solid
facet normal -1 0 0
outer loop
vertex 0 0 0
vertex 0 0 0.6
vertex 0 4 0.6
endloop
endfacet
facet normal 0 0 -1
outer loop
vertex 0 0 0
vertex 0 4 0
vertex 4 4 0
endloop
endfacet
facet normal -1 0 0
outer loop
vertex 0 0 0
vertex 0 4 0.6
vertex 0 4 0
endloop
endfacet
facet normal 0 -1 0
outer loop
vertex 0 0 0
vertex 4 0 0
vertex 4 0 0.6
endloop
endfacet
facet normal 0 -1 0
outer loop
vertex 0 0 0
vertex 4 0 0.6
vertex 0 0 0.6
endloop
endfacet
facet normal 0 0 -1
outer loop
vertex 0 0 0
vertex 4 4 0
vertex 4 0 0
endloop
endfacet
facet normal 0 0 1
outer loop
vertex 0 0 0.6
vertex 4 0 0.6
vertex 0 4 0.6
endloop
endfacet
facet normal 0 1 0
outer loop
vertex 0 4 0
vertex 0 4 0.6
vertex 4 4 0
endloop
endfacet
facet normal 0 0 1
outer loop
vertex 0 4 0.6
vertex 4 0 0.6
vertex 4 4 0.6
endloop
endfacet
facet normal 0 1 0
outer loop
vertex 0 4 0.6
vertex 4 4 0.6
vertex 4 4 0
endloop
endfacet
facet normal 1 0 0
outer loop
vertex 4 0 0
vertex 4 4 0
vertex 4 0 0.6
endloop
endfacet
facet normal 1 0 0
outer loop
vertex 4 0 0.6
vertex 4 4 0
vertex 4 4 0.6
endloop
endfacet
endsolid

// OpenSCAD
/* Warning, this is a very basic generator with a lot of approximation 
input data : [UQFN, R3B, 4x4x0.6mm, 32, , A, C04-21370A]
generated by com.zoubworld.electronics.cad.model3d.Basic
Date : Sun Feb 15 10:50:49 CET 2026
*/

//body
color("black")
translate([0,0,0])
cube([4.0,4.0,0.6], center=false);
